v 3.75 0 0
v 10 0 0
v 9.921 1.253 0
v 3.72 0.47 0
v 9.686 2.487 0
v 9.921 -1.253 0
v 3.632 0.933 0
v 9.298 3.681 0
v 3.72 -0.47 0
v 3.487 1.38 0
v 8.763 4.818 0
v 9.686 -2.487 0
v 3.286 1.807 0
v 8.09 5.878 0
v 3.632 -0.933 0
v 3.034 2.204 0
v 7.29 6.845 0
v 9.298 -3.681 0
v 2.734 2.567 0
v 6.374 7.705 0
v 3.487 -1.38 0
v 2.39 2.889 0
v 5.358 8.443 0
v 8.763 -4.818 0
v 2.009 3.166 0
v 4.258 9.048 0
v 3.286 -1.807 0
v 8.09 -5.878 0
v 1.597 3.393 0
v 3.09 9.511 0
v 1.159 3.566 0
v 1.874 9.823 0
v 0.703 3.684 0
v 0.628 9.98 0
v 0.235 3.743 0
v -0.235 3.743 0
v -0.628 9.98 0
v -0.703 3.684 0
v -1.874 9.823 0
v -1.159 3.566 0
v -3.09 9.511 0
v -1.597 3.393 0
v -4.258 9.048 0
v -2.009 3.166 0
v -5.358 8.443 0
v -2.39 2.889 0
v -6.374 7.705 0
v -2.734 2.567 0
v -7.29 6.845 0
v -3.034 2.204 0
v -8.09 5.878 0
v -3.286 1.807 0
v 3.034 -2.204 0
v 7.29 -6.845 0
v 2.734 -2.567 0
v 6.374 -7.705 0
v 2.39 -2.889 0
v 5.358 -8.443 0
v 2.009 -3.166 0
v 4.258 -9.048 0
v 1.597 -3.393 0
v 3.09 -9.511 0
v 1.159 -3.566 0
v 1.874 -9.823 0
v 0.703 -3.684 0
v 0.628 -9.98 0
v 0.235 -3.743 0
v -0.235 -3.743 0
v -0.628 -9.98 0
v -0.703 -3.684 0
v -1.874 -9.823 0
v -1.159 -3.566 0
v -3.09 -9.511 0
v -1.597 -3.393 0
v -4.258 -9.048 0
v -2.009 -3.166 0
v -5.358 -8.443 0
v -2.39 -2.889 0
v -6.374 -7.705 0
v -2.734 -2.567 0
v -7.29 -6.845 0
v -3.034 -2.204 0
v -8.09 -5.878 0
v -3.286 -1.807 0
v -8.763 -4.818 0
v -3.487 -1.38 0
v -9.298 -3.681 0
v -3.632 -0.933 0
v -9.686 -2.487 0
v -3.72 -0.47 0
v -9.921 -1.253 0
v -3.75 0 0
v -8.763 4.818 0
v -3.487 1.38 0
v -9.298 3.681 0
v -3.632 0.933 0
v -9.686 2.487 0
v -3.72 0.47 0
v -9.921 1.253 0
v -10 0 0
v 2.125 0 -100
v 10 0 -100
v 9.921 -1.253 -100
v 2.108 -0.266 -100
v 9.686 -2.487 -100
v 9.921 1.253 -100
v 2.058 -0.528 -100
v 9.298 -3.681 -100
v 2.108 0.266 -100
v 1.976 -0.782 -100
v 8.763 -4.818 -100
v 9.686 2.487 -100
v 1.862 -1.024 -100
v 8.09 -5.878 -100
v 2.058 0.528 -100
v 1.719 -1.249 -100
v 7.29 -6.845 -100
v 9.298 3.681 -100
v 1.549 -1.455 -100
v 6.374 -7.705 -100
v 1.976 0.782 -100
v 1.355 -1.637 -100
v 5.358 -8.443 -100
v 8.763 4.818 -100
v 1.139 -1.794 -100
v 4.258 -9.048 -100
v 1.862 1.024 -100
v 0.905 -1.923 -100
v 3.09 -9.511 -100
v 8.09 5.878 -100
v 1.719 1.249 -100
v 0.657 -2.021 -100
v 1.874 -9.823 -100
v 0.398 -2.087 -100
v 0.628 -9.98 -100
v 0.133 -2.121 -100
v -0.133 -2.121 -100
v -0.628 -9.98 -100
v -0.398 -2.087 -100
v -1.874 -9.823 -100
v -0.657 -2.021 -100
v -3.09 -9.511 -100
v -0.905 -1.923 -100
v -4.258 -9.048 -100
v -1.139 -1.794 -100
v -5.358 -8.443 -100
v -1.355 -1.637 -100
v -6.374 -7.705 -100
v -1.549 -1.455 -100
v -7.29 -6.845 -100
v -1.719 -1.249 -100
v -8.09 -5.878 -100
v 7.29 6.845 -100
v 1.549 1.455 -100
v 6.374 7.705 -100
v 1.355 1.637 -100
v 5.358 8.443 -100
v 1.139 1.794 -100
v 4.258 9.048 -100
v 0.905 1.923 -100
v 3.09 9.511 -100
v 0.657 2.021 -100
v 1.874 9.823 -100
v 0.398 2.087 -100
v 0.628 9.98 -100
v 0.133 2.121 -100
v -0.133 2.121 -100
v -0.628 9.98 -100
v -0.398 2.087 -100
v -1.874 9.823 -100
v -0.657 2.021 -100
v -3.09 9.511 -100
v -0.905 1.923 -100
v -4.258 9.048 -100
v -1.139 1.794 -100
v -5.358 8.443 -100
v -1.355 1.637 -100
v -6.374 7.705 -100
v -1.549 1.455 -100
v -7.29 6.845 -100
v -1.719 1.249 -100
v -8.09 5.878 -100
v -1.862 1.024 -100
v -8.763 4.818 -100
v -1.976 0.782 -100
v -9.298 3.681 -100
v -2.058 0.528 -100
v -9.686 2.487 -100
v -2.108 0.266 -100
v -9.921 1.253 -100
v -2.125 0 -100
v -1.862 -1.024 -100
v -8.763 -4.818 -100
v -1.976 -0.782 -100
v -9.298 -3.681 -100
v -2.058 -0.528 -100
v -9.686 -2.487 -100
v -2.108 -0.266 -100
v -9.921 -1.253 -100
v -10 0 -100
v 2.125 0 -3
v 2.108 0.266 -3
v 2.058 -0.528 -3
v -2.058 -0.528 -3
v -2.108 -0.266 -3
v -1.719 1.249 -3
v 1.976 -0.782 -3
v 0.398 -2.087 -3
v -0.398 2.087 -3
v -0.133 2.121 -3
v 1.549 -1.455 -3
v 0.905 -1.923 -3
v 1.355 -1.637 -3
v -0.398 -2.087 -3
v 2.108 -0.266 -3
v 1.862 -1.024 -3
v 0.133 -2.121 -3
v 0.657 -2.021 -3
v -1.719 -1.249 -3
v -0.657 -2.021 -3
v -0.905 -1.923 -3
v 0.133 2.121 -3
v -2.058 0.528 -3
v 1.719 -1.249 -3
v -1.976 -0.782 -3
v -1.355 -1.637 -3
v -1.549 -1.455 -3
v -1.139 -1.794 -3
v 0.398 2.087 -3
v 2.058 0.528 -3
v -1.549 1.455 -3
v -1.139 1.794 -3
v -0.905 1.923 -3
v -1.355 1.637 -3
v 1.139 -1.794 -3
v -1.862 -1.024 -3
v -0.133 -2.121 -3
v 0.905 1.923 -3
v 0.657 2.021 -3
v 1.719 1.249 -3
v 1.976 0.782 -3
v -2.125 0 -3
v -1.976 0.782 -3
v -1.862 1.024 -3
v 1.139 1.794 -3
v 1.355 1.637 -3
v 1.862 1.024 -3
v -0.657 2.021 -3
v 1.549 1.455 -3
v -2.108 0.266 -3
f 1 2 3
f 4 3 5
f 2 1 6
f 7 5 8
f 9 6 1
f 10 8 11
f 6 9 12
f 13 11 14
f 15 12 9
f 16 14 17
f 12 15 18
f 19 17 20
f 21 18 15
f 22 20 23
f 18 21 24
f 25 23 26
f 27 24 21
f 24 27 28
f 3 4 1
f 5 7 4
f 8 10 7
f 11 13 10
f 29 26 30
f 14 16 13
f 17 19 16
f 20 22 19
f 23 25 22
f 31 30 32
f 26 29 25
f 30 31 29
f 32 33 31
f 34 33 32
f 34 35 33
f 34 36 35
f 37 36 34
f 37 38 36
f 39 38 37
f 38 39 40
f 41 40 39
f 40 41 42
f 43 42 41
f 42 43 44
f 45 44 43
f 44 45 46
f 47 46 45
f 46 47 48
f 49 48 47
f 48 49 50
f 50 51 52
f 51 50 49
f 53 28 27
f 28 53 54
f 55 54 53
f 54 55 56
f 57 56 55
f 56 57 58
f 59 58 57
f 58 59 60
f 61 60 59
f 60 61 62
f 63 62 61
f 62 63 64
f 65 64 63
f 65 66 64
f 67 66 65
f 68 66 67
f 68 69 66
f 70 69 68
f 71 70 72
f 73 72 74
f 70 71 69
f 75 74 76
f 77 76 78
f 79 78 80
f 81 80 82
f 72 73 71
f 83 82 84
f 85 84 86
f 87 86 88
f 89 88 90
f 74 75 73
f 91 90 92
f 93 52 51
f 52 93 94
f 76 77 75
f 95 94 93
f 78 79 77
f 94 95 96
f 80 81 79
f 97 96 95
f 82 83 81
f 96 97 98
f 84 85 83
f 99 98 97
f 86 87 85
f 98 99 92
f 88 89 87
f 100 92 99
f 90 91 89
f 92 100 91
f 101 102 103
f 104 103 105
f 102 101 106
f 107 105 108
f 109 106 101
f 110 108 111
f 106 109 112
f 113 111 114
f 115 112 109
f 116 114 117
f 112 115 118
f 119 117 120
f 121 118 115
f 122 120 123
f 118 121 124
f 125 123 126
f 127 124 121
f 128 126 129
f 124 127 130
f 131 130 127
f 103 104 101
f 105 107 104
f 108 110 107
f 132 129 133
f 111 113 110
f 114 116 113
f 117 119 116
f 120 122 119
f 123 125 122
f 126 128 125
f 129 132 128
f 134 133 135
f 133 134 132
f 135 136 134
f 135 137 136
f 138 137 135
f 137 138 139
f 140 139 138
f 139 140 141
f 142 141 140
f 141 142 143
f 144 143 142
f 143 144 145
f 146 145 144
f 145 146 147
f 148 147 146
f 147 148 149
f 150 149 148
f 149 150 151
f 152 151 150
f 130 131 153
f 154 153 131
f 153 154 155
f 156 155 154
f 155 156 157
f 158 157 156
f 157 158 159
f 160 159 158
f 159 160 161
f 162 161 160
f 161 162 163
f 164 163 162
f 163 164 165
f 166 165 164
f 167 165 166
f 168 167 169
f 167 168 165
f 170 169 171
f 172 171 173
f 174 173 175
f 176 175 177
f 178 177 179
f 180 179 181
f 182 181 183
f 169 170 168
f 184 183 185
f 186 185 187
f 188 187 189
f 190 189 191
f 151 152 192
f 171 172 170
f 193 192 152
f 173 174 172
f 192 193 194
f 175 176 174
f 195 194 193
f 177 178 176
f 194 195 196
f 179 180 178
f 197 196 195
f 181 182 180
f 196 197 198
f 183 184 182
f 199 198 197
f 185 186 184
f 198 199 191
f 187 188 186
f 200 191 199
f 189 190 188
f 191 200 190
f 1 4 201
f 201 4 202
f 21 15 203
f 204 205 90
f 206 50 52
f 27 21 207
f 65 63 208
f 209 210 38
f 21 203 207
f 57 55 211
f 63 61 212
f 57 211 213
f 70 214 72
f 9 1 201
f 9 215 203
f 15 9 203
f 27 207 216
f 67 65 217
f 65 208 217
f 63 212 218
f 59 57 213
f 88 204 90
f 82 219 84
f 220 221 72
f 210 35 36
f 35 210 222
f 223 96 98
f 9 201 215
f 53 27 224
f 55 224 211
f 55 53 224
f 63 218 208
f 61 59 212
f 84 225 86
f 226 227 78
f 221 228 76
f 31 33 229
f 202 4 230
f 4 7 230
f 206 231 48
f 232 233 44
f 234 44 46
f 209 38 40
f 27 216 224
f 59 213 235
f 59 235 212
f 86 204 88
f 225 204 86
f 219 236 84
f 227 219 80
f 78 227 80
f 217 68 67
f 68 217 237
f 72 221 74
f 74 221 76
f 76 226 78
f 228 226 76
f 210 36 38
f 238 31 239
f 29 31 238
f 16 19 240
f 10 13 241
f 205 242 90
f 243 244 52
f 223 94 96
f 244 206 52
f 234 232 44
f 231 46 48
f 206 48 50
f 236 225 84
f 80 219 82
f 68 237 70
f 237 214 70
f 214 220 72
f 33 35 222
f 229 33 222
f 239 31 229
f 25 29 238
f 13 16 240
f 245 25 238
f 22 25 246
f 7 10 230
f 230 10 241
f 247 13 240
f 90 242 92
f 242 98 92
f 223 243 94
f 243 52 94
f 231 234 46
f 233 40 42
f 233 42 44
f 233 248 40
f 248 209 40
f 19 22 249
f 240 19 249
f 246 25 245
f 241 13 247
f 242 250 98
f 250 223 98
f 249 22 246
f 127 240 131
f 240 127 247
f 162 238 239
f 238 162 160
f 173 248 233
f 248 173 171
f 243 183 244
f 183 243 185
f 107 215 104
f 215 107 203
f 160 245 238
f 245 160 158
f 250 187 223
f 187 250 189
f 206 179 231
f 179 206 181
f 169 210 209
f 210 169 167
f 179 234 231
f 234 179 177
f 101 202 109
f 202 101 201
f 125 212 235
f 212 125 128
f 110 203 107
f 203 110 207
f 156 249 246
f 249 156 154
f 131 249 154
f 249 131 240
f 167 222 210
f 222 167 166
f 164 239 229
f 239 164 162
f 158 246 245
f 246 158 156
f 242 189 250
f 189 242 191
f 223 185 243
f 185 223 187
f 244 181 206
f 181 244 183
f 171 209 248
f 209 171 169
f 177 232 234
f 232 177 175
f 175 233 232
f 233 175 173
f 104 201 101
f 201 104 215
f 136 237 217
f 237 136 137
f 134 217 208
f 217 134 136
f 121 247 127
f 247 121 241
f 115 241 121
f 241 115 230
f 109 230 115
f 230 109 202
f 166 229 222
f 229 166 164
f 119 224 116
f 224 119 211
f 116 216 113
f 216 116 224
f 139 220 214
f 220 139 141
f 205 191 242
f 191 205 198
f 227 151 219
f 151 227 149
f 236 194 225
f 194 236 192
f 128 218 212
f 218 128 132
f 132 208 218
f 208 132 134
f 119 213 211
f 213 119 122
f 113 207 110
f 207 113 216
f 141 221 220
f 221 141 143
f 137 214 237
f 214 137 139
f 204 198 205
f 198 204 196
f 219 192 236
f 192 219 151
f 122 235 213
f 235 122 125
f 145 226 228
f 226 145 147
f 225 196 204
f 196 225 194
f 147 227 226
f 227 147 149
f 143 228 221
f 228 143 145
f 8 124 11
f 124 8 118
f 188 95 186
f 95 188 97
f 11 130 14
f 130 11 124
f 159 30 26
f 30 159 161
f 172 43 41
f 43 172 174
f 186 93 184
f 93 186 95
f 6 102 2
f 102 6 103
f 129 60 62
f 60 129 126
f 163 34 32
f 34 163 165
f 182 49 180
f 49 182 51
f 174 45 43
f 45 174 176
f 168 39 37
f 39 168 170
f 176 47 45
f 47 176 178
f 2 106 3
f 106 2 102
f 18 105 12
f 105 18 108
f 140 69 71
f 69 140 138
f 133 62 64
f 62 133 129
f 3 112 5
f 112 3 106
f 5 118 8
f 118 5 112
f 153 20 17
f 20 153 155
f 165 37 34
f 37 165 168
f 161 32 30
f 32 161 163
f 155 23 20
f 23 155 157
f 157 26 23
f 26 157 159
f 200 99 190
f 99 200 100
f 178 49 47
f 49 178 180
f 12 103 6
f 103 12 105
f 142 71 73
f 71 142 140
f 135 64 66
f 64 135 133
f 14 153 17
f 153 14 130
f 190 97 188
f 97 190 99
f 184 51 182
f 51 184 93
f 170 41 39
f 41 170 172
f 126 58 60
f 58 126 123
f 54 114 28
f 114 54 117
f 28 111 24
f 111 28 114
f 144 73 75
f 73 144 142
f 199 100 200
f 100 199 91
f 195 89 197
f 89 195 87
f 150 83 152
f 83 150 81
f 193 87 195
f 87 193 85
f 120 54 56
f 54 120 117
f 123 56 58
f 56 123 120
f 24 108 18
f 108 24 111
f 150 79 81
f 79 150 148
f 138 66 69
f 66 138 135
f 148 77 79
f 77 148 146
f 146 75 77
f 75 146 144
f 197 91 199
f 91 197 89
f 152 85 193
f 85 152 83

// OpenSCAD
$fn = 50;


difference() {
	union() {
		translate(v = [0, 0, -100.0000000000]) {
			cylinder(h = 100, r = 10.0000000000);
		}
		cylinder(h = 0, r = 13.0000000000);
	}
	union() {
		translate(v = [0, 0, 0]) {
			rotate(a = [0, 0, 0]) {
				difference() {
					union() {
						#translate(v = [0, 0, -100.0000000000]) {
							cylinder(h = 100, r = 2.0000000000);
						}
						#translate(v = [0, 0, -3]) {
							cylinder(h = 3, r = 10.0000000000, r1 = 2.1250000000, r2 = 3.7500000000);
						}
						#translate(v = [0, 0, -100.0000000000]) {
							cylinder(h = 100, r = 2.1250000000);
						}
						#translate(v = [0, 0, -100.0000000000]) {
							cylinder(h = 100, r = 2.0000000000);
						}
					}
					union();
				}
			}
		}
	}
}
